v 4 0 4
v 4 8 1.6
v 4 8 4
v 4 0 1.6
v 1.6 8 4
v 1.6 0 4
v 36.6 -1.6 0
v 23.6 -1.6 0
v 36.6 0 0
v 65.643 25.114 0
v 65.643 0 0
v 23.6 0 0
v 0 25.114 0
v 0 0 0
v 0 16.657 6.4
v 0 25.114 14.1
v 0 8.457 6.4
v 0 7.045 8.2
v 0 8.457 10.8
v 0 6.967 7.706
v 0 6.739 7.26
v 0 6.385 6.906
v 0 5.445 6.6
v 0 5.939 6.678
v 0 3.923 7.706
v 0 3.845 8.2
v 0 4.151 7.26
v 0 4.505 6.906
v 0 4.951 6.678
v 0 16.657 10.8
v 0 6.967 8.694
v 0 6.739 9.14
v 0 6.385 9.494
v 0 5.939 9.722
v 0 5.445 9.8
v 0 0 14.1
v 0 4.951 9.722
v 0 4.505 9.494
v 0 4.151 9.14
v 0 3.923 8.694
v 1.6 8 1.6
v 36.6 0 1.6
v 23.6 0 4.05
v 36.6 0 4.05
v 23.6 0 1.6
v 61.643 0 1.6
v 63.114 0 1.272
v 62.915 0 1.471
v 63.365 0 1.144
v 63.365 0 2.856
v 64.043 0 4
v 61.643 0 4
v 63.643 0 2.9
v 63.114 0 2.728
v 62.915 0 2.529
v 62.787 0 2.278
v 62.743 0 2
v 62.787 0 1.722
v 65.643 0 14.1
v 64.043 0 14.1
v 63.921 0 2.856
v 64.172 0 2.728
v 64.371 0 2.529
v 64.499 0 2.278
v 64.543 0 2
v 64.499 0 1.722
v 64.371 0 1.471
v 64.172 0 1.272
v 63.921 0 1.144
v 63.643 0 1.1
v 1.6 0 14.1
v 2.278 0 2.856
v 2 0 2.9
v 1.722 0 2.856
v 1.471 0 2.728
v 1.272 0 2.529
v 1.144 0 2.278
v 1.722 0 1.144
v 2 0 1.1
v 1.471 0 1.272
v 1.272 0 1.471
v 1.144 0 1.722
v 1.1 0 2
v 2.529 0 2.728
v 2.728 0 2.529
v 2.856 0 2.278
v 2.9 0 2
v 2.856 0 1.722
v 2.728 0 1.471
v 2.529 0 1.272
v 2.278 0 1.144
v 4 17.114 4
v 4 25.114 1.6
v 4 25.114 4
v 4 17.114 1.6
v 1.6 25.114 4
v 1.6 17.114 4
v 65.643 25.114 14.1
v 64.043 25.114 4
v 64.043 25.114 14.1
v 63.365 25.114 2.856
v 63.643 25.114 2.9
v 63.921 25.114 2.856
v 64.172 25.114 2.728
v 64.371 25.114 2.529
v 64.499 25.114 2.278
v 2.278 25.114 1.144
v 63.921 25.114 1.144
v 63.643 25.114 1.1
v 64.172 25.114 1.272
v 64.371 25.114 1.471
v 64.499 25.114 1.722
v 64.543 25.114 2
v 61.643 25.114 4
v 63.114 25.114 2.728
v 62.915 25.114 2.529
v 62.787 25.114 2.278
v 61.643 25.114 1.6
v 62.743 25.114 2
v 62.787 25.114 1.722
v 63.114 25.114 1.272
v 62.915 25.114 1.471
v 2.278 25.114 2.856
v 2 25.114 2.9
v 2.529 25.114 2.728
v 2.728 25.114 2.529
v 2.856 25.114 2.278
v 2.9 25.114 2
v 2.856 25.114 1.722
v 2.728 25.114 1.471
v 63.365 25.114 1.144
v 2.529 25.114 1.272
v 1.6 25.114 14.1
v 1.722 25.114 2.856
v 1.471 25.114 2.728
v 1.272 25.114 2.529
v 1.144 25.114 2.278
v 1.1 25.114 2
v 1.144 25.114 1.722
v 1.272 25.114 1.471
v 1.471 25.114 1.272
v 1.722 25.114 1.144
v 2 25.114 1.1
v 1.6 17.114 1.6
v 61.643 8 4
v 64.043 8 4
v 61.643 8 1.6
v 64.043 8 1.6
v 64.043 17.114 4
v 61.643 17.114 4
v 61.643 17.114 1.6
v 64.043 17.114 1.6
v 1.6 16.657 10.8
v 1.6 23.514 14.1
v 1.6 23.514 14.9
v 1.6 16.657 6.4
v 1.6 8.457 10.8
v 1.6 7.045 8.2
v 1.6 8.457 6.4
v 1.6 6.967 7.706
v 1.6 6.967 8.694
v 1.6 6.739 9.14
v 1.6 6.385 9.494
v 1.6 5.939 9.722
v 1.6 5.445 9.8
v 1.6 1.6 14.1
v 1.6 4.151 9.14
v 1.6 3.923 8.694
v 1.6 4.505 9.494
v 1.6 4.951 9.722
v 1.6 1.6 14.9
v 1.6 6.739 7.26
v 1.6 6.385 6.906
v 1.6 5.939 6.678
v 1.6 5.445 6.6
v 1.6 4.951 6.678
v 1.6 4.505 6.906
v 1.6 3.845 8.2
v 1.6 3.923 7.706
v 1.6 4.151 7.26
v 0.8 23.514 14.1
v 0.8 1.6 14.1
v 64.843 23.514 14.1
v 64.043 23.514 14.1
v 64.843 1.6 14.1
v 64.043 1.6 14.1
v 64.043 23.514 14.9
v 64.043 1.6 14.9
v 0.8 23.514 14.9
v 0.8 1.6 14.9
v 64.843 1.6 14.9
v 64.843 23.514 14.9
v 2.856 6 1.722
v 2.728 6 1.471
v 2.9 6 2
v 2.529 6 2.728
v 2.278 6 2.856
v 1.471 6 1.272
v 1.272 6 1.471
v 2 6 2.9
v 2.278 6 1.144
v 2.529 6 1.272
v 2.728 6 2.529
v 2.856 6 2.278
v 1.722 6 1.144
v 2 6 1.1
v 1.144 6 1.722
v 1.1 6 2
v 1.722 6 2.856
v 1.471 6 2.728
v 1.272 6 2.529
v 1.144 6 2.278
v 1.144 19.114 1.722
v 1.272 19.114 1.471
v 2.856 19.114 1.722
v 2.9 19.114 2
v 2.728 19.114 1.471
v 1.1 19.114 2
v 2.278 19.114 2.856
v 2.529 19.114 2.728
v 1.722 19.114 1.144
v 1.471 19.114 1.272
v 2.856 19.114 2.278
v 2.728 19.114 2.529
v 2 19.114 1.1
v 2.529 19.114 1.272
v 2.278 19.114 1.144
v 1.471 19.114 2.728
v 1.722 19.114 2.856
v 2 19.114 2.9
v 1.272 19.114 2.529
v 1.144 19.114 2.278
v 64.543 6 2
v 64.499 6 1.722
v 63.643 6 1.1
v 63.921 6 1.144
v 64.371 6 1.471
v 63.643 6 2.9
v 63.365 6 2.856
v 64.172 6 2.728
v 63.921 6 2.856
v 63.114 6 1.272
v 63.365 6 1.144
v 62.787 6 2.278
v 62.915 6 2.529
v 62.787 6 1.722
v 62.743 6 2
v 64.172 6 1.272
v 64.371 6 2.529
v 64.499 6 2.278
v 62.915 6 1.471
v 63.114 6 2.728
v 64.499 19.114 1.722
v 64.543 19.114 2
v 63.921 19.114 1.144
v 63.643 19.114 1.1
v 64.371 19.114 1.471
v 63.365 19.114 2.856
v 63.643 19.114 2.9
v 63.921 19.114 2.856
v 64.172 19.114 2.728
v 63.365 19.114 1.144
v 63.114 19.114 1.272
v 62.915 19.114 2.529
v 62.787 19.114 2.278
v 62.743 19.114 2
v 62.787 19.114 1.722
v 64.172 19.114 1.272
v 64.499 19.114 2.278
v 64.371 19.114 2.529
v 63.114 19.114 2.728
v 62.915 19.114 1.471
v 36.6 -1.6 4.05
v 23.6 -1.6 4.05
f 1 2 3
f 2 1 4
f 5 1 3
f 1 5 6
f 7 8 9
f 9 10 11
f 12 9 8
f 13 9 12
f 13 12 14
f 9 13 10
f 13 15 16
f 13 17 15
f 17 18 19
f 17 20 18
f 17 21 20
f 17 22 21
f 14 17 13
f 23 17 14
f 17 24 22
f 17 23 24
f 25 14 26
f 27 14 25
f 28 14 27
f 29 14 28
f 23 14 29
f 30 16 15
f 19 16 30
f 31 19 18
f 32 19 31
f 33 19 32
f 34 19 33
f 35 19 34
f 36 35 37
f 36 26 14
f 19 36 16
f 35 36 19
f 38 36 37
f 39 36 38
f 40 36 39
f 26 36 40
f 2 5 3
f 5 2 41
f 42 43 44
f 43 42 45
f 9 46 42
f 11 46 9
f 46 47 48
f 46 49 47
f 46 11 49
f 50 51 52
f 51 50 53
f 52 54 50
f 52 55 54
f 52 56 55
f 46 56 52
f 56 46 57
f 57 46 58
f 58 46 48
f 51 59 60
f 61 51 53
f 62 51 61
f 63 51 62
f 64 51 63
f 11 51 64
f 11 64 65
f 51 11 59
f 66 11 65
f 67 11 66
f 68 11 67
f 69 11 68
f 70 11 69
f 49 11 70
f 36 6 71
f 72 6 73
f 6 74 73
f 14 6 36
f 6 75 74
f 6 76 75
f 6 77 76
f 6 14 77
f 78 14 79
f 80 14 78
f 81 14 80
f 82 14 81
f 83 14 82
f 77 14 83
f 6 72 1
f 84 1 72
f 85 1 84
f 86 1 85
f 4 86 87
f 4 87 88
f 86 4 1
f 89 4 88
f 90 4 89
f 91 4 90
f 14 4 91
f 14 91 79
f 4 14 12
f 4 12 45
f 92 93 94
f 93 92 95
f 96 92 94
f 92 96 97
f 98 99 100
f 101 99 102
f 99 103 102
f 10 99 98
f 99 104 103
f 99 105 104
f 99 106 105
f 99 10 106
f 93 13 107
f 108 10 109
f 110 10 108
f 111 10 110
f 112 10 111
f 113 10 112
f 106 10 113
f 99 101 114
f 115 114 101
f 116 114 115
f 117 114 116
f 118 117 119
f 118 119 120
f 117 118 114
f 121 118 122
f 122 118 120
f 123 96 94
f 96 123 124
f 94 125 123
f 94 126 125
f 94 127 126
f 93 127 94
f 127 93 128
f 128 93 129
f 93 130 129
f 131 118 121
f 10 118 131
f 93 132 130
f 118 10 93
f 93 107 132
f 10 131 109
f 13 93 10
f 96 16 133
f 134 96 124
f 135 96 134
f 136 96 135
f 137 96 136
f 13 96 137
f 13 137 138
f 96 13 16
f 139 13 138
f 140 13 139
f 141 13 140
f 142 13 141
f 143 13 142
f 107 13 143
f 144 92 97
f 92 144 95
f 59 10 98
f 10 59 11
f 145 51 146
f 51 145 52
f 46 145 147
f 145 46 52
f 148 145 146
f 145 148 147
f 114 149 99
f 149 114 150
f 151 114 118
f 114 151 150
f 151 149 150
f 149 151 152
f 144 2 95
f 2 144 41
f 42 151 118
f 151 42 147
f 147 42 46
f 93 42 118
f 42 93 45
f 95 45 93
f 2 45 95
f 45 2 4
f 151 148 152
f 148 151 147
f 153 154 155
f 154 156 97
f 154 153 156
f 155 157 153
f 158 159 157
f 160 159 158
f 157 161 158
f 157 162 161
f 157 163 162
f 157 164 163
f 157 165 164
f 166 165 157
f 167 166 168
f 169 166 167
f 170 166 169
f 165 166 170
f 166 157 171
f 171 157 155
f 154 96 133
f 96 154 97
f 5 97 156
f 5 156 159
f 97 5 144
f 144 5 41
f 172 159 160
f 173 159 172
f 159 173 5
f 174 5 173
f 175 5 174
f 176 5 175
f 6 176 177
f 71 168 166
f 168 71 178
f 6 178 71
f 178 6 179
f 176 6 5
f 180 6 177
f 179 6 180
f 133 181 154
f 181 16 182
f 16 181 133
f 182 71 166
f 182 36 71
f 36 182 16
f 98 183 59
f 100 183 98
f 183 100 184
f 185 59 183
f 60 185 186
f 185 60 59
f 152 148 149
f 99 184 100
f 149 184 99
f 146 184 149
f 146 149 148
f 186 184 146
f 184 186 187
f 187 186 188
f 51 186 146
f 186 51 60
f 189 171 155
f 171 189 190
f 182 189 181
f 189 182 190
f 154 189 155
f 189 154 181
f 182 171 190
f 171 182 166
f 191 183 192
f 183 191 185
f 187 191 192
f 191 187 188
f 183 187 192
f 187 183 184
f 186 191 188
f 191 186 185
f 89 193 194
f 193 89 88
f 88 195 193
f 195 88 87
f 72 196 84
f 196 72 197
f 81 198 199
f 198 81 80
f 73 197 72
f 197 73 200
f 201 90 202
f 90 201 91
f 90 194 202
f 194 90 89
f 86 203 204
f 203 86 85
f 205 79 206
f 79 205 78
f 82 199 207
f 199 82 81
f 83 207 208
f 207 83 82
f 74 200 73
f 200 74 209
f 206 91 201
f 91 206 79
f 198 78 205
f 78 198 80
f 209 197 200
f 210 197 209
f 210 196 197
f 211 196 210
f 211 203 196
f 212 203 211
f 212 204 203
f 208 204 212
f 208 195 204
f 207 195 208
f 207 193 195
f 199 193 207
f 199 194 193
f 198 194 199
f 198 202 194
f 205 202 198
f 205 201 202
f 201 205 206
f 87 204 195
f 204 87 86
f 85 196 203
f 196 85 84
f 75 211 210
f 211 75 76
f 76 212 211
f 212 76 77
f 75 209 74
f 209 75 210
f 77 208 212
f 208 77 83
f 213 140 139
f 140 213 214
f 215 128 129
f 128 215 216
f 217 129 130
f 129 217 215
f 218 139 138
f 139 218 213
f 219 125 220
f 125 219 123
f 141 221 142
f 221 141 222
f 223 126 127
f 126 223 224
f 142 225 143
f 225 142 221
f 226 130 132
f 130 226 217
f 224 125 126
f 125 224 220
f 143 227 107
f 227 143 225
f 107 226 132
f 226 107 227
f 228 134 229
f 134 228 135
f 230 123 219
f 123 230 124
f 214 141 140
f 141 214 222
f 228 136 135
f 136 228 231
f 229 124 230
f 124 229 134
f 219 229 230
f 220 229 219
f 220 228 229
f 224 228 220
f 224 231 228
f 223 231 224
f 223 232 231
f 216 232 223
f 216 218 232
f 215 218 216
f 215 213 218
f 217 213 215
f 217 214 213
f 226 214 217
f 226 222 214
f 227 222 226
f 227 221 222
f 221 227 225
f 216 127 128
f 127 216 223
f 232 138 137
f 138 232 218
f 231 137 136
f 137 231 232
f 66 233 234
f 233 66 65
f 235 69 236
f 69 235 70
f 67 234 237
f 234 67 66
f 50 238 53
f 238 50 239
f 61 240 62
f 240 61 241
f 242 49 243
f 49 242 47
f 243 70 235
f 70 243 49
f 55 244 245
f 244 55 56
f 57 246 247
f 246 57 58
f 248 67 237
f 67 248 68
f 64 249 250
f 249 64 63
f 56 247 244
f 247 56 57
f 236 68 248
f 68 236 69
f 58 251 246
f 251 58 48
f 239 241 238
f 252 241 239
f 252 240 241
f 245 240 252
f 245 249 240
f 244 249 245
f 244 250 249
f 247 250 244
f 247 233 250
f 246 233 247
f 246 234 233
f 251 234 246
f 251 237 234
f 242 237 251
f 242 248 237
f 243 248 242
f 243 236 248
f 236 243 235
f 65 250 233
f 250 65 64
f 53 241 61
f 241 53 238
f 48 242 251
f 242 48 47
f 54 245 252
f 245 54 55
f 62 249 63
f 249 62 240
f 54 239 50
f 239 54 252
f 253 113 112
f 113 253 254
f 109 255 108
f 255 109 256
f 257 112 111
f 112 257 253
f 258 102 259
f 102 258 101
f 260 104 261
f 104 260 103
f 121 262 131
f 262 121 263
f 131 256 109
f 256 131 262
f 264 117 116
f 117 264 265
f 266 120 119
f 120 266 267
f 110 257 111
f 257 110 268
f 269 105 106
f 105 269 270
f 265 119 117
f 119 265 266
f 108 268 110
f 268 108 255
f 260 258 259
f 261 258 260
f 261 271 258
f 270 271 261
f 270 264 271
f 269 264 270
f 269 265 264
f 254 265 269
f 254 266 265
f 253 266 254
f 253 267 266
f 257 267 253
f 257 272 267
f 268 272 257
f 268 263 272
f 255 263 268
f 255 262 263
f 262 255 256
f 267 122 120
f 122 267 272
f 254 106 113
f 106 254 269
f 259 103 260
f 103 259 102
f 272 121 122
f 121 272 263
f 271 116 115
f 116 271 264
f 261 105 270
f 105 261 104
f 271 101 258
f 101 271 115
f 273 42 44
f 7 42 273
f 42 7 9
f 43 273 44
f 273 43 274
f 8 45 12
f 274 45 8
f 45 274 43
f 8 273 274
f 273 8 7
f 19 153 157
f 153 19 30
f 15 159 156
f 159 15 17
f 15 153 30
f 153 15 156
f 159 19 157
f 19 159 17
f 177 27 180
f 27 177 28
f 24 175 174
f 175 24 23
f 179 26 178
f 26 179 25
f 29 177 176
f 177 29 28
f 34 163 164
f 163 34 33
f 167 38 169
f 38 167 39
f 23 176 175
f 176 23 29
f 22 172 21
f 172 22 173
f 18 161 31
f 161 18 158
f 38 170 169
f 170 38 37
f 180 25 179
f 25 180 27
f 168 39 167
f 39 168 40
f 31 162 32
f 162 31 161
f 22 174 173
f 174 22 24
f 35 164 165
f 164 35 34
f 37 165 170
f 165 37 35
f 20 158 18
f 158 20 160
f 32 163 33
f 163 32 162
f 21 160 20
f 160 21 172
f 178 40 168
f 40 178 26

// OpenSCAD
// file: settings.scad
// SPDX-FileCopyrightText: 2025 Rafael G. Martins <rafael@rafaelmartins.eng.br>
// SPDX-License-Identifier: CERN-OHL-S-2.0

thickness = 1.6;

devboard_pcb_height = 1.6;
devboard_width = 23.114;
devboard_length = 51.943;
devboard_screw_padding_front_x = 7.874;
devboard_screw_padding_back_x = 7.366;
devboard_screw_padding_y = 2.921;
devboard_screw_distance_y = 2 * 8.636;
devboard_screw_distance_x = 36.703;
devboard_screw_base_d = 5;
devboard_screw_base_h = 7.5;
devboard_distance_usb = devboard_screw_padding_y + 8.636;
devboard_distance_led = devboard_screw_padding_y + 1.524;
devboard_pcb_padding_x = thickness + 1;
devboard_pcb_padding_y = thickness + 1;

length = devboard_length + 8.5 + 2 * devboard_pcb_padding_x;
width = devboard_width + 2 * devboard_pcb_padding_y;
height = thickness + devboard_screw_base_h + devboard_pcb_height + 5;

led_d = 3.2;
usb_height = 4.4;
usb_width = 8.2;

flatcable_distance = 21;
flatcable_width = 13;
flatcable_height = 0.95;
// file: lib/simple-case.scad
// SPDX-FileCopyrightText: 2024 Rafael G. Martins <rafael@rafaelmartins.eng.br>
// SPDX-License-Identifier: CERN-OHL-S-2.0

module simple_case_base(width, length, height, thickness=1.6, screw_d=2, screw_p=2, gap=0) {
    difference() {
        union() {
            cube([width, length, thickness]);
            cube([width, thickness, height]);
            translate([0, length - thickness, 0])
                cube([width, thickness, height]);
        }

        translate([(thickness - gap) / 2, thickness, (thickness - gap) / 2])
            cube([gap + thickness / 2, length - 2 * thickness, gap + thickness / 2]);
        translate([width - thickness - gap / 2, thickness, (thickness - gap) / 2])
            cube([gap + thickness / 2, length - 2 * thickness, gap + thickness / 2]);

        for (i=[0:1])
            for (j=[0:1])
                translate([i * (width - screw_d - screw_p) + (screw_d + screw_p) / 2,
                           j * (length - thickness),
                           height - (screw_d + screw_p) / 2])
                    rotate([-90, 0, 0])
                        cylinder(h=thickness, d=screw_d * 1.1, $fn=20);
    }
}

module simple_case_cover(width, length, height, thickness=1.6, screw_d=2, screw_p=2, screw_h=6, gap=0) {
    difference() {
        union() {
            cube([width, length - 2 * (thickness + gap), thickness]);
            cube([thickness, length - 2 * (thickness + gap), height - thickness - gap]);
            translate([width - thickness, 0, 0])
                cube([thickness, length - 2 * (thickness + gap), height - thickness - gap]);

            for (i=[0:1])
                for (j=[0:1])
                    translate([i * (width - screw_d - screw_p),
                               j * (length - 2 * (thickness + gap) - screw_h - screw_p), 0])
                        cube([screw_d + screw_p, screw_h + screw_p, screw_d + screw_p]);

            translate([thickness / 2, thickness, height - thickness - gap])
                cube([thickness / 2, length - 4 * thickness - 2 * gap, thickness / 2]);
            translate([width - thickness, thickness, height - thickness - gap])
                cube([thickness / 2, length - 4 * thickness - 2 * gap, thickness / 2]);
        }

        for (i=[0:1])
            for (j=[0:1])
                translate([i * (width - screw_d - screw_p) + (screw_d + screw_p) / 2,
                           j * (length - 2 * (thickness + gap) - screw_h),
                           (screw_d + screw_p) / 2])
                    rotate([-90, 0, 0])
                        cylinder(h=screw_h, d=screw_d * 0.9, $fn=20);
    }
}
// main file
// SPDX-FileCopyrightText: 2025 Rafael G. Martins <rafael@rafaelmartins.eng.br>
// SPDX-License-Identifier: CERN-OHL-S-2.0

include <lib/simple-case.scad>
include <settings.scad>

difference() {
    union() {
        simple_case_cover (length, width, height, thickness=thickness, gap=0);

        translate([devboard_pcb_padding_x + flatcable_distance, -thickness, 0])
            cube([flatcable_width, thickness,
                  height - thickness - devboard_screw_base_h - devboard_pcb_height - flatcable_height]);
    }

    translate([0, devboard_pcb_padding_y - thickness + devboard_distance_usb - usb_width / 2,
               height - thickness - devboard_screw_base_h - 0.2])
        cube([thickness, usb_width, usb_height]);
    translate([0, devboard_pcb_padding_y - thickness + devboard_distance_led,
               height - thickness - devboard_screw_base_h + led_d / 2])
        rotate([-90, 0, -90])
            cylinder(h=thickness, d=led_d, $fn=20);
}
